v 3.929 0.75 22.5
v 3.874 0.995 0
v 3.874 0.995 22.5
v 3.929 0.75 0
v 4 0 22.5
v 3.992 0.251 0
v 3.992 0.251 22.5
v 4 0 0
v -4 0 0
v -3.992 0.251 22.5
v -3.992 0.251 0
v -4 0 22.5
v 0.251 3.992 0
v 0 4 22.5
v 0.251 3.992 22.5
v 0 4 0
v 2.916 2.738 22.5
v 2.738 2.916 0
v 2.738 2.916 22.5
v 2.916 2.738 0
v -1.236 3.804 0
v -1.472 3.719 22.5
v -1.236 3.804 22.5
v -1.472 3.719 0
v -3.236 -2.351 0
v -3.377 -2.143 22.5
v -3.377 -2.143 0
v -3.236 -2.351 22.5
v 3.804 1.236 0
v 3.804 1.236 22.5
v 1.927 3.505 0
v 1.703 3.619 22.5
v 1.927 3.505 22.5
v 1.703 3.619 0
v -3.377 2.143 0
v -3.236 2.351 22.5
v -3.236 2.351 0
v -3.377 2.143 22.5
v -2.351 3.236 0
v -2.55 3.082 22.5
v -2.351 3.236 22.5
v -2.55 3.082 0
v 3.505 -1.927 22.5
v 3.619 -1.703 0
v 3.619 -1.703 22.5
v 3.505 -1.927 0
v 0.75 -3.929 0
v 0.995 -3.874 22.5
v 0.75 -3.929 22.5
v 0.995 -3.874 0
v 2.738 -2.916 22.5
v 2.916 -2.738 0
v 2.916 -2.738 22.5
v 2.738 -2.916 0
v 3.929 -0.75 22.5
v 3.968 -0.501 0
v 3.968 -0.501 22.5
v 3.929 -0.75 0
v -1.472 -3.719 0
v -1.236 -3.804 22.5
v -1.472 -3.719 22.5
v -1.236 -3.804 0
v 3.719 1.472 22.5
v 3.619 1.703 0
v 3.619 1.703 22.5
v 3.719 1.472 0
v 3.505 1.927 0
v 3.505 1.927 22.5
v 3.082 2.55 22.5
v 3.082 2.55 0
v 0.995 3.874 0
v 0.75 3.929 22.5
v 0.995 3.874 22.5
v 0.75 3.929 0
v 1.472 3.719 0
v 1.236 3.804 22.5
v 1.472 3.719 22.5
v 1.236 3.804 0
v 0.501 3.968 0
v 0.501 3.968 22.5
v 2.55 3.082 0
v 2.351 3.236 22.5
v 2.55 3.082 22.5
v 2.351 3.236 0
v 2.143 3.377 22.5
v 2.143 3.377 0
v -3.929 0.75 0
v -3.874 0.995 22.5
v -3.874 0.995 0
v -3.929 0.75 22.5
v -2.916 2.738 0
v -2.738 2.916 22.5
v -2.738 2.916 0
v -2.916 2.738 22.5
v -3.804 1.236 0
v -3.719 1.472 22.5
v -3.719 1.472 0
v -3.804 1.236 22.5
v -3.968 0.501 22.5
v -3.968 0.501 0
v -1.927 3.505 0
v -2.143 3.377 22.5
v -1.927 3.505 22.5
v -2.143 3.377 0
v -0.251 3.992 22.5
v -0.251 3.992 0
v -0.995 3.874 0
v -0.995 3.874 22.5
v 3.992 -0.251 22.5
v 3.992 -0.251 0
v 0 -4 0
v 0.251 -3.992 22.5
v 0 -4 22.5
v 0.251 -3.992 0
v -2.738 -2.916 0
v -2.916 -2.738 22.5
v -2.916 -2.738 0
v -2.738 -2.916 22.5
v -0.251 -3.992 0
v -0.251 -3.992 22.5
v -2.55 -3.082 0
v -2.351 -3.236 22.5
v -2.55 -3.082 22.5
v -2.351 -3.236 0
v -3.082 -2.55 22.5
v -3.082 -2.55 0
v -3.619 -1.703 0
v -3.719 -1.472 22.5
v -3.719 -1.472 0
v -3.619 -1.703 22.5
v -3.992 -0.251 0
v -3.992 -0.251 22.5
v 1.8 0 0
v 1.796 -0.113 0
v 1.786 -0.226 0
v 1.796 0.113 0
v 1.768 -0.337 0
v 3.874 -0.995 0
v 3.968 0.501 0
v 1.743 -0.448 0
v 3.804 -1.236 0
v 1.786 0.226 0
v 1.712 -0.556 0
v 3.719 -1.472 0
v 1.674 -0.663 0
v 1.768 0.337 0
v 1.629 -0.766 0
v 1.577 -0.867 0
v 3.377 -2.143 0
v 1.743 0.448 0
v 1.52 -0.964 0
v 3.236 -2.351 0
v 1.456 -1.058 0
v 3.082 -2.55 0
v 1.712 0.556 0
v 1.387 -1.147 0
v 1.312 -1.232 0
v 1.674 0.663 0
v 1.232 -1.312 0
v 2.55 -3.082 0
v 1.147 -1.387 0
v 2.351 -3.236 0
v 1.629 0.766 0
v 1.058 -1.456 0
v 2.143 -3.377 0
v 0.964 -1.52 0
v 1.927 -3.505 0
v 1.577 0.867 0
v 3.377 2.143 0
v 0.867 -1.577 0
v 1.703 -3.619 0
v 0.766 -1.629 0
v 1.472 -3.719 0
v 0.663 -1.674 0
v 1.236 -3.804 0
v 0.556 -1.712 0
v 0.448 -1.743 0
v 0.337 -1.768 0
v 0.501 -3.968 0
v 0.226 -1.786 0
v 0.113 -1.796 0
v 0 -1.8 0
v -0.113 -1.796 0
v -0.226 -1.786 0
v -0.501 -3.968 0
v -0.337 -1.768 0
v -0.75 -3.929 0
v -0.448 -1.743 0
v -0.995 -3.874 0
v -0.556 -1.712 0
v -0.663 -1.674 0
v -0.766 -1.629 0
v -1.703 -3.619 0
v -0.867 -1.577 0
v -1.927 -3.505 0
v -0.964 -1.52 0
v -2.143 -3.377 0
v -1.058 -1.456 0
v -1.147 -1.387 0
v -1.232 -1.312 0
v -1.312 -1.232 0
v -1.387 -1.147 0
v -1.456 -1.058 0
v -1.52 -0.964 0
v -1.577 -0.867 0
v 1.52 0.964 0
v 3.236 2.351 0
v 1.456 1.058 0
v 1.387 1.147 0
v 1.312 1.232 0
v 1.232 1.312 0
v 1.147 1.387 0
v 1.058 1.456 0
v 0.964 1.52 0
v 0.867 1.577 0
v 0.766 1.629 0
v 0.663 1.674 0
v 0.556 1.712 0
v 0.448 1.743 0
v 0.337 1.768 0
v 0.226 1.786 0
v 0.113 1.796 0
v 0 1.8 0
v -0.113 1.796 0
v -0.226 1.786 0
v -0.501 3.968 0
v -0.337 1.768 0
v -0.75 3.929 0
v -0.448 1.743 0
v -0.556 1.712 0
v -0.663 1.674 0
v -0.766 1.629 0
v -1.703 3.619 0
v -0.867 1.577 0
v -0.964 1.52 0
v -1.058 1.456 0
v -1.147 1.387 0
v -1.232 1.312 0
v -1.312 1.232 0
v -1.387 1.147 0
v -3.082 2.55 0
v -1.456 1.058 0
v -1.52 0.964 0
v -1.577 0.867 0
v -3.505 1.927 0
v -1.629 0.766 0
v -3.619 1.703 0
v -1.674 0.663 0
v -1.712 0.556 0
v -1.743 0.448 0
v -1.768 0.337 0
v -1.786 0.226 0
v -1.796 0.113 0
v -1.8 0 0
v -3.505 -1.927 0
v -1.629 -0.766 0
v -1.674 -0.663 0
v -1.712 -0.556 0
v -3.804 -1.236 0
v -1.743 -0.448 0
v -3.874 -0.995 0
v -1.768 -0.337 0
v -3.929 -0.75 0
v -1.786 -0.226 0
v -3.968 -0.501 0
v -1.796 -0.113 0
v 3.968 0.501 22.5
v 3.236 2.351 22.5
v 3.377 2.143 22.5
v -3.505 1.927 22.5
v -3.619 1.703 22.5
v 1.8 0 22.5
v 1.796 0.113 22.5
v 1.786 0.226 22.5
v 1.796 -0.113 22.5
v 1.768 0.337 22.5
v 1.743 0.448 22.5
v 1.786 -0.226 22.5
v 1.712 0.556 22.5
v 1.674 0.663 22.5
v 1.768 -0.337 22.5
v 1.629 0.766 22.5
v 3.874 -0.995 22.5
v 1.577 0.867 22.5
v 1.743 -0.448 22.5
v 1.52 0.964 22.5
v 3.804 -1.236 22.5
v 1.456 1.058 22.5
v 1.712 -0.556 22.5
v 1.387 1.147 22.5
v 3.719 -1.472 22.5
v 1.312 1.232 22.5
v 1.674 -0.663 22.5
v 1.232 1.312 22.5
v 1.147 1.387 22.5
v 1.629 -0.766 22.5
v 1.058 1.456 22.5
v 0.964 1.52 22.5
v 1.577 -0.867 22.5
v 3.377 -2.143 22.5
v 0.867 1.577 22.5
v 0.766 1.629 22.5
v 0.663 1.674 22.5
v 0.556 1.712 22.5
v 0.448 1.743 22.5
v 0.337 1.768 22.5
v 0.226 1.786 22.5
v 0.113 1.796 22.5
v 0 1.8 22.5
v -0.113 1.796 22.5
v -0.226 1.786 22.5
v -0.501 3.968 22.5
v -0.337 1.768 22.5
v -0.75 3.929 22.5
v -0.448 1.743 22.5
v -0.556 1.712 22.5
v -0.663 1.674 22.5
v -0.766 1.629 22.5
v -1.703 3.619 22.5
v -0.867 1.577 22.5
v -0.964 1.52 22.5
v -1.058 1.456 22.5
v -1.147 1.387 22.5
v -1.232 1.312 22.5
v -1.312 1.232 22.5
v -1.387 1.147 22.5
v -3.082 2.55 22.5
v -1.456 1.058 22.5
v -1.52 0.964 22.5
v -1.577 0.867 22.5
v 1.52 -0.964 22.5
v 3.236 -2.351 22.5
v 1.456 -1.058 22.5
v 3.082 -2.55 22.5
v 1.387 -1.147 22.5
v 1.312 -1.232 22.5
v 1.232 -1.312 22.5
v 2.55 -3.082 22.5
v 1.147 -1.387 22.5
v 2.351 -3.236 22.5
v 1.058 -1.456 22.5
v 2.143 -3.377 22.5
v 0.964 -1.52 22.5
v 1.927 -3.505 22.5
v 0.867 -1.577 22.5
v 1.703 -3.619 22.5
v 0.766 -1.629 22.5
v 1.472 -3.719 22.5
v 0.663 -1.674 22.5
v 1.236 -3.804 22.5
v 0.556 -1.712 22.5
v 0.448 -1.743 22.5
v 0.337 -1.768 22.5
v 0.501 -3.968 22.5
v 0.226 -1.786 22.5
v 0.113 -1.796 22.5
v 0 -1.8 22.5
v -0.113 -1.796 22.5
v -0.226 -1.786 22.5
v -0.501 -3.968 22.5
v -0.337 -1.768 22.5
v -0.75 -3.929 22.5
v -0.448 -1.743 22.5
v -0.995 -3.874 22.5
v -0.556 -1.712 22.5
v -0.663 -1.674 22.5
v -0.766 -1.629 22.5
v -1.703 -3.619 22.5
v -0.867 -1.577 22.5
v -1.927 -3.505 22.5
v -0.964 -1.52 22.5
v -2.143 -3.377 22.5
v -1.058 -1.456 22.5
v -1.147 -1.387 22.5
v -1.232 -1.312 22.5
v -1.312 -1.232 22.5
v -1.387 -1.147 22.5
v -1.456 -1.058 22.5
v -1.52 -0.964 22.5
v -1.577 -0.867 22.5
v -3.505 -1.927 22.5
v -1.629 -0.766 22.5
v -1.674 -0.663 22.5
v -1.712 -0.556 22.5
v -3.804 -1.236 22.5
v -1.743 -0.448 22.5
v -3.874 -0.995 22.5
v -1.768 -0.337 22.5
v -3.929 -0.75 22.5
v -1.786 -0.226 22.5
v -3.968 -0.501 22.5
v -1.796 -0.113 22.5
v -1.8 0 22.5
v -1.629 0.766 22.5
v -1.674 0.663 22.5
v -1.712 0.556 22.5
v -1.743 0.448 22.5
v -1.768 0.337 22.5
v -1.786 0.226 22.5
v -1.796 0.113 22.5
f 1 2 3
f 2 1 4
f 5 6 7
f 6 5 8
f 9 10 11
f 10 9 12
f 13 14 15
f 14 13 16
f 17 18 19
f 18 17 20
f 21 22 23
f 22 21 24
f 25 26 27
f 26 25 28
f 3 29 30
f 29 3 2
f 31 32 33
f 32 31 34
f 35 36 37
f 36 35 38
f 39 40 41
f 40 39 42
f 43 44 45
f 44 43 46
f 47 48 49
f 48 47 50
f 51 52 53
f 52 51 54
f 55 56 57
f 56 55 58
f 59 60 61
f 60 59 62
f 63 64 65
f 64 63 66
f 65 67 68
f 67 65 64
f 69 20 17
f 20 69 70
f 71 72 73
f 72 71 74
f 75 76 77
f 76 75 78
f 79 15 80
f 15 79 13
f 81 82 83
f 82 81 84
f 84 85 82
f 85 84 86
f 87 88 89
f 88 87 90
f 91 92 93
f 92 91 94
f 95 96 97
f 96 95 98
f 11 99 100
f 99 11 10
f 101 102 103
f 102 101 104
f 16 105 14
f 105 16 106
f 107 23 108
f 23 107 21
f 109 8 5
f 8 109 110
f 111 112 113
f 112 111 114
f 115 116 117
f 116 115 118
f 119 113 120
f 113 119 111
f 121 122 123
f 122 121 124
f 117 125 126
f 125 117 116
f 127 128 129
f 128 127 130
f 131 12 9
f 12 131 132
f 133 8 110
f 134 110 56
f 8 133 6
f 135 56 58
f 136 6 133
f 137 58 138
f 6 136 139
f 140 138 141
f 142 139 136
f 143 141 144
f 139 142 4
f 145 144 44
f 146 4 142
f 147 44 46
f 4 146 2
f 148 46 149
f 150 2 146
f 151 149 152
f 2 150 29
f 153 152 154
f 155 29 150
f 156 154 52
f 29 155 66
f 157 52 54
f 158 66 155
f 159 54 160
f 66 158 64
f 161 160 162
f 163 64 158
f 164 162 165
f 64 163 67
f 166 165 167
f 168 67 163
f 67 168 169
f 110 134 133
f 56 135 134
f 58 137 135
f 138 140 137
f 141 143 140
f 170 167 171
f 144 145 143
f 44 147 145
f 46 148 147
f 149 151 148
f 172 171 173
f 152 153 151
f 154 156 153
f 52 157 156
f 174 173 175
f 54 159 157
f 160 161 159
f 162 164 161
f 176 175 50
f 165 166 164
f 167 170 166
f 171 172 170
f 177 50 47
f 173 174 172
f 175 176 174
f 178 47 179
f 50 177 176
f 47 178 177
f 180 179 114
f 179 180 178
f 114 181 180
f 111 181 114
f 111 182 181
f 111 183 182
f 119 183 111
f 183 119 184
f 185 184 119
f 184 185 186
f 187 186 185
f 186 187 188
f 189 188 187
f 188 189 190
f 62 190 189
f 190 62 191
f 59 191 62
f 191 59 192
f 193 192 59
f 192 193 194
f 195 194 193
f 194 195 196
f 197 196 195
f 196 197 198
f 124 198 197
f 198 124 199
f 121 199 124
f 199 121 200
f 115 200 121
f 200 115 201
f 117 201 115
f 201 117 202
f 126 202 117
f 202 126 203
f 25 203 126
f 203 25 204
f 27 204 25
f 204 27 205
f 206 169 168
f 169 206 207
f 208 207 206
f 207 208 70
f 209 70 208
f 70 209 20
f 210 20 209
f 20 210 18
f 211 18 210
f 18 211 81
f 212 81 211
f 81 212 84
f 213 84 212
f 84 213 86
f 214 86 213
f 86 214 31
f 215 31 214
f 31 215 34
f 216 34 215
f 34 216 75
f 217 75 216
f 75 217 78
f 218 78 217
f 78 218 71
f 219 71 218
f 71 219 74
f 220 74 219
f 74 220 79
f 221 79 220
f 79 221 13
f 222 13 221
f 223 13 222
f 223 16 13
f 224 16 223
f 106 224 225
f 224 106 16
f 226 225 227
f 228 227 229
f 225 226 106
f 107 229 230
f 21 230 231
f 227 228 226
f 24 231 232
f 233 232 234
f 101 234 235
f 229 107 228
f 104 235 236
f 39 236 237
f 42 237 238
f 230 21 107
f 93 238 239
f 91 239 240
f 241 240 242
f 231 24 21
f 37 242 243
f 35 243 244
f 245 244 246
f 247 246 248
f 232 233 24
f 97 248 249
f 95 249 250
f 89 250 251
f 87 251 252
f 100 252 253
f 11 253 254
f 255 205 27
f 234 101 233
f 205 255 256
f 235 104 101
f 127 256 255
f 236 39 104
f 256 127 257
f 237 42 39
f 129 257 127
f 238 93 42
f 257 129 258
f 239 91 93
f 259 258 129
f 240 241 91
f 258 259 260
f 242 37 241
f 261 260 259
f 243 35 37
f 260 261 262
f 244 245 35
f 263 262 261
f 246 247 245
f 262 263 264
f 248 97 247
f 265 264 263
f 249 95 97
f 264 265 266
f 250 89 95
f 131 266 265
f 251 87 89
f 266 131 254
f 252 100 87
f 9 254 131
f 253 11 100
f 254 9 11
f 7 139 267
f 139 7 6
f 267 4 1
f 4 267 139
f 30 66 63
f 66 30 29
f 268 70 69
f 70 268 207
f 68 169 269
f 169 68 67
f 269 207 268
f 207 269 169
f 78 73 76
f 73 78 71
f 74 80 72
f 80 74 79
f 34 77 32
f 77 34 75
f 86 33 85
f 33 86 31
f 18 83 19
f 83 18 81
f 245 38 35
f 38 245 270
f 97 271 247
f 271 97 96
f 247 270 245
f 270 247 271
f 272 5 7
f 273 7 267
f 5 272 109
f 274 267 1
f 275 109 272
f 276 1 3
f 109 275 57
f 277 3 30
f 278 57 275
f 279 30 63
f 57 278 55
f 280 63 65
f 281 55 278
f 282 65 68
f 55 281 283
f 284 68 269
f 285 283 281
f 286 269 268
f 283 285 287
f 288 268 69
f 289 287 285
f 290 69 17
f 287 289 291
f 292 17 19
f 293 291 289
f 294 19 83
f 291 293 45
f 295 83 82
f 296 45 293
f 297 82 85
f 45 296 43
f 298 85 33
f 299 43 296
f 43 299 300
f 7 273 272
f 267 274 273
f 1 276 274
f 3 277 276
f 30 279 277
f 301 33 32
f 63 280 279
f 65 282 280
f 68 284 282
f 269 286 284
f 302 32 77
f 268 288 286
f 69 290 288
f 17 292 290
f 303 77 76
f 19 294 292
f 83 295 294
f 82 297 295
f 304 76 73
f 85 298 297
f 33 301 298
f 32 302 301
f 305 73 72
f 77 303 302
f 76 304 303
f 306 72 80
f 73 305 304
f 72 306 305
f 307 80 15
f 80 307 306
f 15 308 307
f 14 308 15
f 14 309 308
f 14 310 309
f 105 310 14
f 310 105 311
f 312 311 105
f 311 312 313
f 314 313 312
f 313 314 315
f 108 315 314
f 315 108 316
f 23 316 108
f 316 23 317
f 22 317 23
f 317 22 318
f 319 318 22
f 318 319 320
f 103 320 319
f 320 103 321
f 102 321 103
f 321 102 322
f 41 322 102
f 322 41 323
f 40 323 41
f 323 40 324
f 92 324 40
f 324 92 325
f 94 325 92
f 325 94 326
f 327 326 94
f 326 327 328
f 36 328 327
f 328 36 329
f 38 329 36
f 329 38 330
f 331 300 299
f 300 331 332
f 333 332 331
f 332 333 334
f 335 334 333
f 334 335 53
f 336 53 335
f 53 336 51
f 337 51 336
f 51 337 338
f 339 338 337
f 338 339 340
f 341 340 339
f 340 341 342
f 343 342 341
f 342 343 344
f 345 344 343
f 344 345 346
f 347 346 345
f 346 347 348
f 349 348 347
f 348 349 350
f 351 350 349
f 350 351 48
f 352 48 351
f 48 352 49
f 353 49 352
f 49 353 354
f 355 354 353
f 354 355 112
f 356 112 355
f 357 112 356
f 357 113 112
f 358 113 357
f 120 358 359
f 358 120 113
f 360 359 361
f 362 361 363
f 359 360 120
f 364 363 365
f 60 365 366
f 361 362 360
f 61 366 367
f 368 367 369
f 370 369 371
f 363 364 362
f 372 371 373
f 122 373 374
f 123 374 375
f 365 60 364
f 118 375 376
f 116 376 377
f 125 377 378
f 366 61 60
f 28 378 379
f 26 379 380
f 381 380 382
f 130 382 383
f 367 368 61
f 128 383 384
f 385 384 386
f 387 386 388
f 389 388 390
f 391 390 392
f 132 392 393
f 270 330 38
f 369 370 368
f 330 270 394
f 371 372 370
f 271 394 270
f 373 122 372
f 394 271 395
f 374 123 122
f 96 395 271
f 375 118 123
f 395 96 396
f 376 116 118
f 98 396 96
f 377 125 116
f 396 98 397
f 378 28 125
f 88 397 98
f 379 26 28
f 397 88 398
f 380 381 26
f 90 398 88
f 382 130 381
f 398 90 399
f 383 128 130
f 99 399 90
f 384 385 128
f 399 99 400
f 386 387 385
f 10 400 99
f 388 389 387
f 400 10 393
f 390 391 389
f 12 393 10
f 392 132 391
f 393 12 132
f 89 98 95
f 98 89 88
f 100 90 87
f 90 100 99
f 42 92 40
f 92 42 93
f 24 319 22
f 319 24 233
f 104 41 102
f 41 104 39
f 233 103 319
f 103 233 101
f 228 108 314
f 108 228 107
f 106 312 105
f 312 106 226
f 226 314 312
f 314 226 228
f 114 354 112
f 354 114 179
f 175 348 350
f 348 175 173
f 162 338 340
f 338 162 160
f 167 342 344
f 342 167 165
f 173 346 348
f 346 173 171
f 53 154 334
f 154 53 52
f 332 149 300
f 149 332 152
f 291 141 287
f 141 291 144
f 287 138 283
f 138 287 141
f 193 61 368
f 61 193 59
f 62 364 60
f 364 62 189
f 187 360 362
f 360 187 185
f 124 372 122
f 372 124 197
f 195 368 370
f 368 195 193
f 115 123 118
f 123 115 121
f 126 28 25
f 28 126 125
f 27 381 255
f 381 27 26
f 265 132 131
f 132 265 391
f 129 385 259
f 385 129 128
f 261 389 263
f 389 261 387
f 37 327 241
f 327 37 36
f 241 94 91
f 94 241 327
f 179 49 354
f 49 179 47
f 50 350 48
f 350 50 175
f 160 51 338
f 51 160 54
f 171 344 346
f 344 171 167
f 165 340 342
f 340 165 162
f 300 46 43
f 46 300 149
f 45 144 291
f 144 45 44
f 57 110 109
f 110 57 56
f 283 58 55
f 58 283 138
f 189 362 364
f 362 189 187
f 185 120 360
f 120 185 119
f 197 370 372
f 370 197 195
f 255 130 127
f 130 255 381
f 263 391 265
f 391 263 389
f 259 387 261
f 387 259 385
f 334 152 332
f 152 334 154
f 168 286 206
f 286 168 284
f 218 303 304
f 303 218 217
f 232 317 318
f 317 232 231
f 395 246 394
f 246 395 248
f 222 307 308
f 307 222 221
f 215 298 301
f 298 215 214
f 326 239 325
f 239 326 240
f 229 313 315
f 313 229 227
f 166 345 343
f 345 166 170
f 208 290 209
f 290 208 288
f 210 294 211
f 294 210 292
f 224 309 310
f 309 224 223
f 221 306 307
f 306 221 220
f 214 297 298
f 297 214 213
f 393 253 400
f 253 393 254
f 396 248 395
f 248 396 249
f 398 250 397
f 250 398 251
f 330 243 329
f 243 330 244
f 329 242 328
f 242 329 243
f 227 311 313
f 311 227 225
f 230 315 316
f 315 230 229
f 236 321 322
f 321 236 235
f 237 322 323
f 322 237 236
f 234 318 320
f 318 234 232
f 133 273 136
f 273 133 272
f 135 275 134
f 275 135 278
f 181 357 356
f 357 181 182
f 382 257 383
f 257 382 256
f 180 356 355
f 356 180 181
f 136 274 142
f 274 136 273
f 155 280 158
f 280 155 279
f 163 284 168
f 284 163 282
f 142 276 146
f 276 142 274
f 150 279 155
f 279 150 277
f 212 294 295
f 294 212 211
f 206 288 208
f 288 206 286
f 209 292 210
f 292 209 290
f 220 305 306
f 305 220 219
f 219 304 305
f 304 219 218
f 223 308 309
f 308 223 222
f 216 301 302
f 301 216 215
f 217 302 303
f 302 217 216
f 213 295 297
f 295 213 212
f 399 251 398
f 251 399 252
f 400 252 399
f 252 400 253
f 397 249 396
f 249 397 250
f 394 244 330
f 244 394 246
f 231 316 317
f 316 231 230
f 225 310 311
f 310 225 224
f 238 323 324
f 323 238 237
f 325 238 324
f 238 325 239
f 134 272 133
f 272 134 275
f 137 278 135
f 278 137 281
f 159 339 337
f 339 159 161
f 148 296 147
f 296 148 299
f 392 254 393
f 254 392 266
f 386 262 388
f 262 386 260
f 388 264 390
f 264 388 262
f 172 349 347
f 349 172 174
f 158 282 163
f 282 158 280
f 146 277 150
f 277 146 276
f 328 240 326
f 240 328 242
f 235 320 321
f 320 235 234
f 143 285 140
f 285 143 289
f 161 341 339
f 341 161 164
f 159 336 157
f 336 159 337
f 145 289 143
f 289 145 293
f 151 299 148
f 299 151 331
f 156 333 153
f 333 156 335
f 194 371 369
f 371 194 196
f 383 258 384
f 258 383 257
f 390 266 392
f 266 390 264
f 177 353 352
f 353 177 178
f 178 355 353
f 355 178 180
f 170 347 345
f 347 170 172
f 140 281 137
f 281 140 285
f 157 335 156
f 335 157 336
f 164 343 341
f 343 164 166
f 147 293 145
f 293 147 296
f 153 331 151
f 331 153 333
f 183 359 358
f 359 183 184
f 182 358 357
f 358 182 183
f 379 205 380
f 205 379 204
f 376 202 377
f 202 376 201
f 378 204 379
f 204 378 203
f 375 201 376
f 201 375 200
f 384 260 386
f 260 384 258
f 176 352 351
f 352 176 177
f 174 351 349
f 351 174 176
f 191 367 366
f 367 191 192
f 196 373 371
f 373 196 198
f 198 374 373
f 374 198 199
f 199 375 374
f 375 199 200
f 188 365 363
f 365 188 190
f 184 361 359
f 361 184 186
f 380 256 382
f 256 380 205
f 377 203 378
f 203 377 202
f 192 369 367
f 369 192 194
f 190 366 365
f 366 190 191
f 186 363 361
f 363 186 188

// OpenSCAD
$fn = 100;
height = 22.5;
d = 4;
inner_d = 1.8;
N = 2;
/*
difference()
{
    union()
    {
        for(i=[1:1:N]){
            rotate([0,0,(360/N)*i])
                translate([-20,0,0])
                    cylinder(height,d,d);
        }
    }
    for(i=[1:1:N]){
         rotate([0,0,(360/N)*i])
            translate([20,0,-1])
                cylinder(height+2,inner_d,inner_d);
    }
}*/

difference()
{
    cylinder(height,d,d);
    translate([0,0,-1])
        cylinder(height+2,inner_d,inner_d);
}
